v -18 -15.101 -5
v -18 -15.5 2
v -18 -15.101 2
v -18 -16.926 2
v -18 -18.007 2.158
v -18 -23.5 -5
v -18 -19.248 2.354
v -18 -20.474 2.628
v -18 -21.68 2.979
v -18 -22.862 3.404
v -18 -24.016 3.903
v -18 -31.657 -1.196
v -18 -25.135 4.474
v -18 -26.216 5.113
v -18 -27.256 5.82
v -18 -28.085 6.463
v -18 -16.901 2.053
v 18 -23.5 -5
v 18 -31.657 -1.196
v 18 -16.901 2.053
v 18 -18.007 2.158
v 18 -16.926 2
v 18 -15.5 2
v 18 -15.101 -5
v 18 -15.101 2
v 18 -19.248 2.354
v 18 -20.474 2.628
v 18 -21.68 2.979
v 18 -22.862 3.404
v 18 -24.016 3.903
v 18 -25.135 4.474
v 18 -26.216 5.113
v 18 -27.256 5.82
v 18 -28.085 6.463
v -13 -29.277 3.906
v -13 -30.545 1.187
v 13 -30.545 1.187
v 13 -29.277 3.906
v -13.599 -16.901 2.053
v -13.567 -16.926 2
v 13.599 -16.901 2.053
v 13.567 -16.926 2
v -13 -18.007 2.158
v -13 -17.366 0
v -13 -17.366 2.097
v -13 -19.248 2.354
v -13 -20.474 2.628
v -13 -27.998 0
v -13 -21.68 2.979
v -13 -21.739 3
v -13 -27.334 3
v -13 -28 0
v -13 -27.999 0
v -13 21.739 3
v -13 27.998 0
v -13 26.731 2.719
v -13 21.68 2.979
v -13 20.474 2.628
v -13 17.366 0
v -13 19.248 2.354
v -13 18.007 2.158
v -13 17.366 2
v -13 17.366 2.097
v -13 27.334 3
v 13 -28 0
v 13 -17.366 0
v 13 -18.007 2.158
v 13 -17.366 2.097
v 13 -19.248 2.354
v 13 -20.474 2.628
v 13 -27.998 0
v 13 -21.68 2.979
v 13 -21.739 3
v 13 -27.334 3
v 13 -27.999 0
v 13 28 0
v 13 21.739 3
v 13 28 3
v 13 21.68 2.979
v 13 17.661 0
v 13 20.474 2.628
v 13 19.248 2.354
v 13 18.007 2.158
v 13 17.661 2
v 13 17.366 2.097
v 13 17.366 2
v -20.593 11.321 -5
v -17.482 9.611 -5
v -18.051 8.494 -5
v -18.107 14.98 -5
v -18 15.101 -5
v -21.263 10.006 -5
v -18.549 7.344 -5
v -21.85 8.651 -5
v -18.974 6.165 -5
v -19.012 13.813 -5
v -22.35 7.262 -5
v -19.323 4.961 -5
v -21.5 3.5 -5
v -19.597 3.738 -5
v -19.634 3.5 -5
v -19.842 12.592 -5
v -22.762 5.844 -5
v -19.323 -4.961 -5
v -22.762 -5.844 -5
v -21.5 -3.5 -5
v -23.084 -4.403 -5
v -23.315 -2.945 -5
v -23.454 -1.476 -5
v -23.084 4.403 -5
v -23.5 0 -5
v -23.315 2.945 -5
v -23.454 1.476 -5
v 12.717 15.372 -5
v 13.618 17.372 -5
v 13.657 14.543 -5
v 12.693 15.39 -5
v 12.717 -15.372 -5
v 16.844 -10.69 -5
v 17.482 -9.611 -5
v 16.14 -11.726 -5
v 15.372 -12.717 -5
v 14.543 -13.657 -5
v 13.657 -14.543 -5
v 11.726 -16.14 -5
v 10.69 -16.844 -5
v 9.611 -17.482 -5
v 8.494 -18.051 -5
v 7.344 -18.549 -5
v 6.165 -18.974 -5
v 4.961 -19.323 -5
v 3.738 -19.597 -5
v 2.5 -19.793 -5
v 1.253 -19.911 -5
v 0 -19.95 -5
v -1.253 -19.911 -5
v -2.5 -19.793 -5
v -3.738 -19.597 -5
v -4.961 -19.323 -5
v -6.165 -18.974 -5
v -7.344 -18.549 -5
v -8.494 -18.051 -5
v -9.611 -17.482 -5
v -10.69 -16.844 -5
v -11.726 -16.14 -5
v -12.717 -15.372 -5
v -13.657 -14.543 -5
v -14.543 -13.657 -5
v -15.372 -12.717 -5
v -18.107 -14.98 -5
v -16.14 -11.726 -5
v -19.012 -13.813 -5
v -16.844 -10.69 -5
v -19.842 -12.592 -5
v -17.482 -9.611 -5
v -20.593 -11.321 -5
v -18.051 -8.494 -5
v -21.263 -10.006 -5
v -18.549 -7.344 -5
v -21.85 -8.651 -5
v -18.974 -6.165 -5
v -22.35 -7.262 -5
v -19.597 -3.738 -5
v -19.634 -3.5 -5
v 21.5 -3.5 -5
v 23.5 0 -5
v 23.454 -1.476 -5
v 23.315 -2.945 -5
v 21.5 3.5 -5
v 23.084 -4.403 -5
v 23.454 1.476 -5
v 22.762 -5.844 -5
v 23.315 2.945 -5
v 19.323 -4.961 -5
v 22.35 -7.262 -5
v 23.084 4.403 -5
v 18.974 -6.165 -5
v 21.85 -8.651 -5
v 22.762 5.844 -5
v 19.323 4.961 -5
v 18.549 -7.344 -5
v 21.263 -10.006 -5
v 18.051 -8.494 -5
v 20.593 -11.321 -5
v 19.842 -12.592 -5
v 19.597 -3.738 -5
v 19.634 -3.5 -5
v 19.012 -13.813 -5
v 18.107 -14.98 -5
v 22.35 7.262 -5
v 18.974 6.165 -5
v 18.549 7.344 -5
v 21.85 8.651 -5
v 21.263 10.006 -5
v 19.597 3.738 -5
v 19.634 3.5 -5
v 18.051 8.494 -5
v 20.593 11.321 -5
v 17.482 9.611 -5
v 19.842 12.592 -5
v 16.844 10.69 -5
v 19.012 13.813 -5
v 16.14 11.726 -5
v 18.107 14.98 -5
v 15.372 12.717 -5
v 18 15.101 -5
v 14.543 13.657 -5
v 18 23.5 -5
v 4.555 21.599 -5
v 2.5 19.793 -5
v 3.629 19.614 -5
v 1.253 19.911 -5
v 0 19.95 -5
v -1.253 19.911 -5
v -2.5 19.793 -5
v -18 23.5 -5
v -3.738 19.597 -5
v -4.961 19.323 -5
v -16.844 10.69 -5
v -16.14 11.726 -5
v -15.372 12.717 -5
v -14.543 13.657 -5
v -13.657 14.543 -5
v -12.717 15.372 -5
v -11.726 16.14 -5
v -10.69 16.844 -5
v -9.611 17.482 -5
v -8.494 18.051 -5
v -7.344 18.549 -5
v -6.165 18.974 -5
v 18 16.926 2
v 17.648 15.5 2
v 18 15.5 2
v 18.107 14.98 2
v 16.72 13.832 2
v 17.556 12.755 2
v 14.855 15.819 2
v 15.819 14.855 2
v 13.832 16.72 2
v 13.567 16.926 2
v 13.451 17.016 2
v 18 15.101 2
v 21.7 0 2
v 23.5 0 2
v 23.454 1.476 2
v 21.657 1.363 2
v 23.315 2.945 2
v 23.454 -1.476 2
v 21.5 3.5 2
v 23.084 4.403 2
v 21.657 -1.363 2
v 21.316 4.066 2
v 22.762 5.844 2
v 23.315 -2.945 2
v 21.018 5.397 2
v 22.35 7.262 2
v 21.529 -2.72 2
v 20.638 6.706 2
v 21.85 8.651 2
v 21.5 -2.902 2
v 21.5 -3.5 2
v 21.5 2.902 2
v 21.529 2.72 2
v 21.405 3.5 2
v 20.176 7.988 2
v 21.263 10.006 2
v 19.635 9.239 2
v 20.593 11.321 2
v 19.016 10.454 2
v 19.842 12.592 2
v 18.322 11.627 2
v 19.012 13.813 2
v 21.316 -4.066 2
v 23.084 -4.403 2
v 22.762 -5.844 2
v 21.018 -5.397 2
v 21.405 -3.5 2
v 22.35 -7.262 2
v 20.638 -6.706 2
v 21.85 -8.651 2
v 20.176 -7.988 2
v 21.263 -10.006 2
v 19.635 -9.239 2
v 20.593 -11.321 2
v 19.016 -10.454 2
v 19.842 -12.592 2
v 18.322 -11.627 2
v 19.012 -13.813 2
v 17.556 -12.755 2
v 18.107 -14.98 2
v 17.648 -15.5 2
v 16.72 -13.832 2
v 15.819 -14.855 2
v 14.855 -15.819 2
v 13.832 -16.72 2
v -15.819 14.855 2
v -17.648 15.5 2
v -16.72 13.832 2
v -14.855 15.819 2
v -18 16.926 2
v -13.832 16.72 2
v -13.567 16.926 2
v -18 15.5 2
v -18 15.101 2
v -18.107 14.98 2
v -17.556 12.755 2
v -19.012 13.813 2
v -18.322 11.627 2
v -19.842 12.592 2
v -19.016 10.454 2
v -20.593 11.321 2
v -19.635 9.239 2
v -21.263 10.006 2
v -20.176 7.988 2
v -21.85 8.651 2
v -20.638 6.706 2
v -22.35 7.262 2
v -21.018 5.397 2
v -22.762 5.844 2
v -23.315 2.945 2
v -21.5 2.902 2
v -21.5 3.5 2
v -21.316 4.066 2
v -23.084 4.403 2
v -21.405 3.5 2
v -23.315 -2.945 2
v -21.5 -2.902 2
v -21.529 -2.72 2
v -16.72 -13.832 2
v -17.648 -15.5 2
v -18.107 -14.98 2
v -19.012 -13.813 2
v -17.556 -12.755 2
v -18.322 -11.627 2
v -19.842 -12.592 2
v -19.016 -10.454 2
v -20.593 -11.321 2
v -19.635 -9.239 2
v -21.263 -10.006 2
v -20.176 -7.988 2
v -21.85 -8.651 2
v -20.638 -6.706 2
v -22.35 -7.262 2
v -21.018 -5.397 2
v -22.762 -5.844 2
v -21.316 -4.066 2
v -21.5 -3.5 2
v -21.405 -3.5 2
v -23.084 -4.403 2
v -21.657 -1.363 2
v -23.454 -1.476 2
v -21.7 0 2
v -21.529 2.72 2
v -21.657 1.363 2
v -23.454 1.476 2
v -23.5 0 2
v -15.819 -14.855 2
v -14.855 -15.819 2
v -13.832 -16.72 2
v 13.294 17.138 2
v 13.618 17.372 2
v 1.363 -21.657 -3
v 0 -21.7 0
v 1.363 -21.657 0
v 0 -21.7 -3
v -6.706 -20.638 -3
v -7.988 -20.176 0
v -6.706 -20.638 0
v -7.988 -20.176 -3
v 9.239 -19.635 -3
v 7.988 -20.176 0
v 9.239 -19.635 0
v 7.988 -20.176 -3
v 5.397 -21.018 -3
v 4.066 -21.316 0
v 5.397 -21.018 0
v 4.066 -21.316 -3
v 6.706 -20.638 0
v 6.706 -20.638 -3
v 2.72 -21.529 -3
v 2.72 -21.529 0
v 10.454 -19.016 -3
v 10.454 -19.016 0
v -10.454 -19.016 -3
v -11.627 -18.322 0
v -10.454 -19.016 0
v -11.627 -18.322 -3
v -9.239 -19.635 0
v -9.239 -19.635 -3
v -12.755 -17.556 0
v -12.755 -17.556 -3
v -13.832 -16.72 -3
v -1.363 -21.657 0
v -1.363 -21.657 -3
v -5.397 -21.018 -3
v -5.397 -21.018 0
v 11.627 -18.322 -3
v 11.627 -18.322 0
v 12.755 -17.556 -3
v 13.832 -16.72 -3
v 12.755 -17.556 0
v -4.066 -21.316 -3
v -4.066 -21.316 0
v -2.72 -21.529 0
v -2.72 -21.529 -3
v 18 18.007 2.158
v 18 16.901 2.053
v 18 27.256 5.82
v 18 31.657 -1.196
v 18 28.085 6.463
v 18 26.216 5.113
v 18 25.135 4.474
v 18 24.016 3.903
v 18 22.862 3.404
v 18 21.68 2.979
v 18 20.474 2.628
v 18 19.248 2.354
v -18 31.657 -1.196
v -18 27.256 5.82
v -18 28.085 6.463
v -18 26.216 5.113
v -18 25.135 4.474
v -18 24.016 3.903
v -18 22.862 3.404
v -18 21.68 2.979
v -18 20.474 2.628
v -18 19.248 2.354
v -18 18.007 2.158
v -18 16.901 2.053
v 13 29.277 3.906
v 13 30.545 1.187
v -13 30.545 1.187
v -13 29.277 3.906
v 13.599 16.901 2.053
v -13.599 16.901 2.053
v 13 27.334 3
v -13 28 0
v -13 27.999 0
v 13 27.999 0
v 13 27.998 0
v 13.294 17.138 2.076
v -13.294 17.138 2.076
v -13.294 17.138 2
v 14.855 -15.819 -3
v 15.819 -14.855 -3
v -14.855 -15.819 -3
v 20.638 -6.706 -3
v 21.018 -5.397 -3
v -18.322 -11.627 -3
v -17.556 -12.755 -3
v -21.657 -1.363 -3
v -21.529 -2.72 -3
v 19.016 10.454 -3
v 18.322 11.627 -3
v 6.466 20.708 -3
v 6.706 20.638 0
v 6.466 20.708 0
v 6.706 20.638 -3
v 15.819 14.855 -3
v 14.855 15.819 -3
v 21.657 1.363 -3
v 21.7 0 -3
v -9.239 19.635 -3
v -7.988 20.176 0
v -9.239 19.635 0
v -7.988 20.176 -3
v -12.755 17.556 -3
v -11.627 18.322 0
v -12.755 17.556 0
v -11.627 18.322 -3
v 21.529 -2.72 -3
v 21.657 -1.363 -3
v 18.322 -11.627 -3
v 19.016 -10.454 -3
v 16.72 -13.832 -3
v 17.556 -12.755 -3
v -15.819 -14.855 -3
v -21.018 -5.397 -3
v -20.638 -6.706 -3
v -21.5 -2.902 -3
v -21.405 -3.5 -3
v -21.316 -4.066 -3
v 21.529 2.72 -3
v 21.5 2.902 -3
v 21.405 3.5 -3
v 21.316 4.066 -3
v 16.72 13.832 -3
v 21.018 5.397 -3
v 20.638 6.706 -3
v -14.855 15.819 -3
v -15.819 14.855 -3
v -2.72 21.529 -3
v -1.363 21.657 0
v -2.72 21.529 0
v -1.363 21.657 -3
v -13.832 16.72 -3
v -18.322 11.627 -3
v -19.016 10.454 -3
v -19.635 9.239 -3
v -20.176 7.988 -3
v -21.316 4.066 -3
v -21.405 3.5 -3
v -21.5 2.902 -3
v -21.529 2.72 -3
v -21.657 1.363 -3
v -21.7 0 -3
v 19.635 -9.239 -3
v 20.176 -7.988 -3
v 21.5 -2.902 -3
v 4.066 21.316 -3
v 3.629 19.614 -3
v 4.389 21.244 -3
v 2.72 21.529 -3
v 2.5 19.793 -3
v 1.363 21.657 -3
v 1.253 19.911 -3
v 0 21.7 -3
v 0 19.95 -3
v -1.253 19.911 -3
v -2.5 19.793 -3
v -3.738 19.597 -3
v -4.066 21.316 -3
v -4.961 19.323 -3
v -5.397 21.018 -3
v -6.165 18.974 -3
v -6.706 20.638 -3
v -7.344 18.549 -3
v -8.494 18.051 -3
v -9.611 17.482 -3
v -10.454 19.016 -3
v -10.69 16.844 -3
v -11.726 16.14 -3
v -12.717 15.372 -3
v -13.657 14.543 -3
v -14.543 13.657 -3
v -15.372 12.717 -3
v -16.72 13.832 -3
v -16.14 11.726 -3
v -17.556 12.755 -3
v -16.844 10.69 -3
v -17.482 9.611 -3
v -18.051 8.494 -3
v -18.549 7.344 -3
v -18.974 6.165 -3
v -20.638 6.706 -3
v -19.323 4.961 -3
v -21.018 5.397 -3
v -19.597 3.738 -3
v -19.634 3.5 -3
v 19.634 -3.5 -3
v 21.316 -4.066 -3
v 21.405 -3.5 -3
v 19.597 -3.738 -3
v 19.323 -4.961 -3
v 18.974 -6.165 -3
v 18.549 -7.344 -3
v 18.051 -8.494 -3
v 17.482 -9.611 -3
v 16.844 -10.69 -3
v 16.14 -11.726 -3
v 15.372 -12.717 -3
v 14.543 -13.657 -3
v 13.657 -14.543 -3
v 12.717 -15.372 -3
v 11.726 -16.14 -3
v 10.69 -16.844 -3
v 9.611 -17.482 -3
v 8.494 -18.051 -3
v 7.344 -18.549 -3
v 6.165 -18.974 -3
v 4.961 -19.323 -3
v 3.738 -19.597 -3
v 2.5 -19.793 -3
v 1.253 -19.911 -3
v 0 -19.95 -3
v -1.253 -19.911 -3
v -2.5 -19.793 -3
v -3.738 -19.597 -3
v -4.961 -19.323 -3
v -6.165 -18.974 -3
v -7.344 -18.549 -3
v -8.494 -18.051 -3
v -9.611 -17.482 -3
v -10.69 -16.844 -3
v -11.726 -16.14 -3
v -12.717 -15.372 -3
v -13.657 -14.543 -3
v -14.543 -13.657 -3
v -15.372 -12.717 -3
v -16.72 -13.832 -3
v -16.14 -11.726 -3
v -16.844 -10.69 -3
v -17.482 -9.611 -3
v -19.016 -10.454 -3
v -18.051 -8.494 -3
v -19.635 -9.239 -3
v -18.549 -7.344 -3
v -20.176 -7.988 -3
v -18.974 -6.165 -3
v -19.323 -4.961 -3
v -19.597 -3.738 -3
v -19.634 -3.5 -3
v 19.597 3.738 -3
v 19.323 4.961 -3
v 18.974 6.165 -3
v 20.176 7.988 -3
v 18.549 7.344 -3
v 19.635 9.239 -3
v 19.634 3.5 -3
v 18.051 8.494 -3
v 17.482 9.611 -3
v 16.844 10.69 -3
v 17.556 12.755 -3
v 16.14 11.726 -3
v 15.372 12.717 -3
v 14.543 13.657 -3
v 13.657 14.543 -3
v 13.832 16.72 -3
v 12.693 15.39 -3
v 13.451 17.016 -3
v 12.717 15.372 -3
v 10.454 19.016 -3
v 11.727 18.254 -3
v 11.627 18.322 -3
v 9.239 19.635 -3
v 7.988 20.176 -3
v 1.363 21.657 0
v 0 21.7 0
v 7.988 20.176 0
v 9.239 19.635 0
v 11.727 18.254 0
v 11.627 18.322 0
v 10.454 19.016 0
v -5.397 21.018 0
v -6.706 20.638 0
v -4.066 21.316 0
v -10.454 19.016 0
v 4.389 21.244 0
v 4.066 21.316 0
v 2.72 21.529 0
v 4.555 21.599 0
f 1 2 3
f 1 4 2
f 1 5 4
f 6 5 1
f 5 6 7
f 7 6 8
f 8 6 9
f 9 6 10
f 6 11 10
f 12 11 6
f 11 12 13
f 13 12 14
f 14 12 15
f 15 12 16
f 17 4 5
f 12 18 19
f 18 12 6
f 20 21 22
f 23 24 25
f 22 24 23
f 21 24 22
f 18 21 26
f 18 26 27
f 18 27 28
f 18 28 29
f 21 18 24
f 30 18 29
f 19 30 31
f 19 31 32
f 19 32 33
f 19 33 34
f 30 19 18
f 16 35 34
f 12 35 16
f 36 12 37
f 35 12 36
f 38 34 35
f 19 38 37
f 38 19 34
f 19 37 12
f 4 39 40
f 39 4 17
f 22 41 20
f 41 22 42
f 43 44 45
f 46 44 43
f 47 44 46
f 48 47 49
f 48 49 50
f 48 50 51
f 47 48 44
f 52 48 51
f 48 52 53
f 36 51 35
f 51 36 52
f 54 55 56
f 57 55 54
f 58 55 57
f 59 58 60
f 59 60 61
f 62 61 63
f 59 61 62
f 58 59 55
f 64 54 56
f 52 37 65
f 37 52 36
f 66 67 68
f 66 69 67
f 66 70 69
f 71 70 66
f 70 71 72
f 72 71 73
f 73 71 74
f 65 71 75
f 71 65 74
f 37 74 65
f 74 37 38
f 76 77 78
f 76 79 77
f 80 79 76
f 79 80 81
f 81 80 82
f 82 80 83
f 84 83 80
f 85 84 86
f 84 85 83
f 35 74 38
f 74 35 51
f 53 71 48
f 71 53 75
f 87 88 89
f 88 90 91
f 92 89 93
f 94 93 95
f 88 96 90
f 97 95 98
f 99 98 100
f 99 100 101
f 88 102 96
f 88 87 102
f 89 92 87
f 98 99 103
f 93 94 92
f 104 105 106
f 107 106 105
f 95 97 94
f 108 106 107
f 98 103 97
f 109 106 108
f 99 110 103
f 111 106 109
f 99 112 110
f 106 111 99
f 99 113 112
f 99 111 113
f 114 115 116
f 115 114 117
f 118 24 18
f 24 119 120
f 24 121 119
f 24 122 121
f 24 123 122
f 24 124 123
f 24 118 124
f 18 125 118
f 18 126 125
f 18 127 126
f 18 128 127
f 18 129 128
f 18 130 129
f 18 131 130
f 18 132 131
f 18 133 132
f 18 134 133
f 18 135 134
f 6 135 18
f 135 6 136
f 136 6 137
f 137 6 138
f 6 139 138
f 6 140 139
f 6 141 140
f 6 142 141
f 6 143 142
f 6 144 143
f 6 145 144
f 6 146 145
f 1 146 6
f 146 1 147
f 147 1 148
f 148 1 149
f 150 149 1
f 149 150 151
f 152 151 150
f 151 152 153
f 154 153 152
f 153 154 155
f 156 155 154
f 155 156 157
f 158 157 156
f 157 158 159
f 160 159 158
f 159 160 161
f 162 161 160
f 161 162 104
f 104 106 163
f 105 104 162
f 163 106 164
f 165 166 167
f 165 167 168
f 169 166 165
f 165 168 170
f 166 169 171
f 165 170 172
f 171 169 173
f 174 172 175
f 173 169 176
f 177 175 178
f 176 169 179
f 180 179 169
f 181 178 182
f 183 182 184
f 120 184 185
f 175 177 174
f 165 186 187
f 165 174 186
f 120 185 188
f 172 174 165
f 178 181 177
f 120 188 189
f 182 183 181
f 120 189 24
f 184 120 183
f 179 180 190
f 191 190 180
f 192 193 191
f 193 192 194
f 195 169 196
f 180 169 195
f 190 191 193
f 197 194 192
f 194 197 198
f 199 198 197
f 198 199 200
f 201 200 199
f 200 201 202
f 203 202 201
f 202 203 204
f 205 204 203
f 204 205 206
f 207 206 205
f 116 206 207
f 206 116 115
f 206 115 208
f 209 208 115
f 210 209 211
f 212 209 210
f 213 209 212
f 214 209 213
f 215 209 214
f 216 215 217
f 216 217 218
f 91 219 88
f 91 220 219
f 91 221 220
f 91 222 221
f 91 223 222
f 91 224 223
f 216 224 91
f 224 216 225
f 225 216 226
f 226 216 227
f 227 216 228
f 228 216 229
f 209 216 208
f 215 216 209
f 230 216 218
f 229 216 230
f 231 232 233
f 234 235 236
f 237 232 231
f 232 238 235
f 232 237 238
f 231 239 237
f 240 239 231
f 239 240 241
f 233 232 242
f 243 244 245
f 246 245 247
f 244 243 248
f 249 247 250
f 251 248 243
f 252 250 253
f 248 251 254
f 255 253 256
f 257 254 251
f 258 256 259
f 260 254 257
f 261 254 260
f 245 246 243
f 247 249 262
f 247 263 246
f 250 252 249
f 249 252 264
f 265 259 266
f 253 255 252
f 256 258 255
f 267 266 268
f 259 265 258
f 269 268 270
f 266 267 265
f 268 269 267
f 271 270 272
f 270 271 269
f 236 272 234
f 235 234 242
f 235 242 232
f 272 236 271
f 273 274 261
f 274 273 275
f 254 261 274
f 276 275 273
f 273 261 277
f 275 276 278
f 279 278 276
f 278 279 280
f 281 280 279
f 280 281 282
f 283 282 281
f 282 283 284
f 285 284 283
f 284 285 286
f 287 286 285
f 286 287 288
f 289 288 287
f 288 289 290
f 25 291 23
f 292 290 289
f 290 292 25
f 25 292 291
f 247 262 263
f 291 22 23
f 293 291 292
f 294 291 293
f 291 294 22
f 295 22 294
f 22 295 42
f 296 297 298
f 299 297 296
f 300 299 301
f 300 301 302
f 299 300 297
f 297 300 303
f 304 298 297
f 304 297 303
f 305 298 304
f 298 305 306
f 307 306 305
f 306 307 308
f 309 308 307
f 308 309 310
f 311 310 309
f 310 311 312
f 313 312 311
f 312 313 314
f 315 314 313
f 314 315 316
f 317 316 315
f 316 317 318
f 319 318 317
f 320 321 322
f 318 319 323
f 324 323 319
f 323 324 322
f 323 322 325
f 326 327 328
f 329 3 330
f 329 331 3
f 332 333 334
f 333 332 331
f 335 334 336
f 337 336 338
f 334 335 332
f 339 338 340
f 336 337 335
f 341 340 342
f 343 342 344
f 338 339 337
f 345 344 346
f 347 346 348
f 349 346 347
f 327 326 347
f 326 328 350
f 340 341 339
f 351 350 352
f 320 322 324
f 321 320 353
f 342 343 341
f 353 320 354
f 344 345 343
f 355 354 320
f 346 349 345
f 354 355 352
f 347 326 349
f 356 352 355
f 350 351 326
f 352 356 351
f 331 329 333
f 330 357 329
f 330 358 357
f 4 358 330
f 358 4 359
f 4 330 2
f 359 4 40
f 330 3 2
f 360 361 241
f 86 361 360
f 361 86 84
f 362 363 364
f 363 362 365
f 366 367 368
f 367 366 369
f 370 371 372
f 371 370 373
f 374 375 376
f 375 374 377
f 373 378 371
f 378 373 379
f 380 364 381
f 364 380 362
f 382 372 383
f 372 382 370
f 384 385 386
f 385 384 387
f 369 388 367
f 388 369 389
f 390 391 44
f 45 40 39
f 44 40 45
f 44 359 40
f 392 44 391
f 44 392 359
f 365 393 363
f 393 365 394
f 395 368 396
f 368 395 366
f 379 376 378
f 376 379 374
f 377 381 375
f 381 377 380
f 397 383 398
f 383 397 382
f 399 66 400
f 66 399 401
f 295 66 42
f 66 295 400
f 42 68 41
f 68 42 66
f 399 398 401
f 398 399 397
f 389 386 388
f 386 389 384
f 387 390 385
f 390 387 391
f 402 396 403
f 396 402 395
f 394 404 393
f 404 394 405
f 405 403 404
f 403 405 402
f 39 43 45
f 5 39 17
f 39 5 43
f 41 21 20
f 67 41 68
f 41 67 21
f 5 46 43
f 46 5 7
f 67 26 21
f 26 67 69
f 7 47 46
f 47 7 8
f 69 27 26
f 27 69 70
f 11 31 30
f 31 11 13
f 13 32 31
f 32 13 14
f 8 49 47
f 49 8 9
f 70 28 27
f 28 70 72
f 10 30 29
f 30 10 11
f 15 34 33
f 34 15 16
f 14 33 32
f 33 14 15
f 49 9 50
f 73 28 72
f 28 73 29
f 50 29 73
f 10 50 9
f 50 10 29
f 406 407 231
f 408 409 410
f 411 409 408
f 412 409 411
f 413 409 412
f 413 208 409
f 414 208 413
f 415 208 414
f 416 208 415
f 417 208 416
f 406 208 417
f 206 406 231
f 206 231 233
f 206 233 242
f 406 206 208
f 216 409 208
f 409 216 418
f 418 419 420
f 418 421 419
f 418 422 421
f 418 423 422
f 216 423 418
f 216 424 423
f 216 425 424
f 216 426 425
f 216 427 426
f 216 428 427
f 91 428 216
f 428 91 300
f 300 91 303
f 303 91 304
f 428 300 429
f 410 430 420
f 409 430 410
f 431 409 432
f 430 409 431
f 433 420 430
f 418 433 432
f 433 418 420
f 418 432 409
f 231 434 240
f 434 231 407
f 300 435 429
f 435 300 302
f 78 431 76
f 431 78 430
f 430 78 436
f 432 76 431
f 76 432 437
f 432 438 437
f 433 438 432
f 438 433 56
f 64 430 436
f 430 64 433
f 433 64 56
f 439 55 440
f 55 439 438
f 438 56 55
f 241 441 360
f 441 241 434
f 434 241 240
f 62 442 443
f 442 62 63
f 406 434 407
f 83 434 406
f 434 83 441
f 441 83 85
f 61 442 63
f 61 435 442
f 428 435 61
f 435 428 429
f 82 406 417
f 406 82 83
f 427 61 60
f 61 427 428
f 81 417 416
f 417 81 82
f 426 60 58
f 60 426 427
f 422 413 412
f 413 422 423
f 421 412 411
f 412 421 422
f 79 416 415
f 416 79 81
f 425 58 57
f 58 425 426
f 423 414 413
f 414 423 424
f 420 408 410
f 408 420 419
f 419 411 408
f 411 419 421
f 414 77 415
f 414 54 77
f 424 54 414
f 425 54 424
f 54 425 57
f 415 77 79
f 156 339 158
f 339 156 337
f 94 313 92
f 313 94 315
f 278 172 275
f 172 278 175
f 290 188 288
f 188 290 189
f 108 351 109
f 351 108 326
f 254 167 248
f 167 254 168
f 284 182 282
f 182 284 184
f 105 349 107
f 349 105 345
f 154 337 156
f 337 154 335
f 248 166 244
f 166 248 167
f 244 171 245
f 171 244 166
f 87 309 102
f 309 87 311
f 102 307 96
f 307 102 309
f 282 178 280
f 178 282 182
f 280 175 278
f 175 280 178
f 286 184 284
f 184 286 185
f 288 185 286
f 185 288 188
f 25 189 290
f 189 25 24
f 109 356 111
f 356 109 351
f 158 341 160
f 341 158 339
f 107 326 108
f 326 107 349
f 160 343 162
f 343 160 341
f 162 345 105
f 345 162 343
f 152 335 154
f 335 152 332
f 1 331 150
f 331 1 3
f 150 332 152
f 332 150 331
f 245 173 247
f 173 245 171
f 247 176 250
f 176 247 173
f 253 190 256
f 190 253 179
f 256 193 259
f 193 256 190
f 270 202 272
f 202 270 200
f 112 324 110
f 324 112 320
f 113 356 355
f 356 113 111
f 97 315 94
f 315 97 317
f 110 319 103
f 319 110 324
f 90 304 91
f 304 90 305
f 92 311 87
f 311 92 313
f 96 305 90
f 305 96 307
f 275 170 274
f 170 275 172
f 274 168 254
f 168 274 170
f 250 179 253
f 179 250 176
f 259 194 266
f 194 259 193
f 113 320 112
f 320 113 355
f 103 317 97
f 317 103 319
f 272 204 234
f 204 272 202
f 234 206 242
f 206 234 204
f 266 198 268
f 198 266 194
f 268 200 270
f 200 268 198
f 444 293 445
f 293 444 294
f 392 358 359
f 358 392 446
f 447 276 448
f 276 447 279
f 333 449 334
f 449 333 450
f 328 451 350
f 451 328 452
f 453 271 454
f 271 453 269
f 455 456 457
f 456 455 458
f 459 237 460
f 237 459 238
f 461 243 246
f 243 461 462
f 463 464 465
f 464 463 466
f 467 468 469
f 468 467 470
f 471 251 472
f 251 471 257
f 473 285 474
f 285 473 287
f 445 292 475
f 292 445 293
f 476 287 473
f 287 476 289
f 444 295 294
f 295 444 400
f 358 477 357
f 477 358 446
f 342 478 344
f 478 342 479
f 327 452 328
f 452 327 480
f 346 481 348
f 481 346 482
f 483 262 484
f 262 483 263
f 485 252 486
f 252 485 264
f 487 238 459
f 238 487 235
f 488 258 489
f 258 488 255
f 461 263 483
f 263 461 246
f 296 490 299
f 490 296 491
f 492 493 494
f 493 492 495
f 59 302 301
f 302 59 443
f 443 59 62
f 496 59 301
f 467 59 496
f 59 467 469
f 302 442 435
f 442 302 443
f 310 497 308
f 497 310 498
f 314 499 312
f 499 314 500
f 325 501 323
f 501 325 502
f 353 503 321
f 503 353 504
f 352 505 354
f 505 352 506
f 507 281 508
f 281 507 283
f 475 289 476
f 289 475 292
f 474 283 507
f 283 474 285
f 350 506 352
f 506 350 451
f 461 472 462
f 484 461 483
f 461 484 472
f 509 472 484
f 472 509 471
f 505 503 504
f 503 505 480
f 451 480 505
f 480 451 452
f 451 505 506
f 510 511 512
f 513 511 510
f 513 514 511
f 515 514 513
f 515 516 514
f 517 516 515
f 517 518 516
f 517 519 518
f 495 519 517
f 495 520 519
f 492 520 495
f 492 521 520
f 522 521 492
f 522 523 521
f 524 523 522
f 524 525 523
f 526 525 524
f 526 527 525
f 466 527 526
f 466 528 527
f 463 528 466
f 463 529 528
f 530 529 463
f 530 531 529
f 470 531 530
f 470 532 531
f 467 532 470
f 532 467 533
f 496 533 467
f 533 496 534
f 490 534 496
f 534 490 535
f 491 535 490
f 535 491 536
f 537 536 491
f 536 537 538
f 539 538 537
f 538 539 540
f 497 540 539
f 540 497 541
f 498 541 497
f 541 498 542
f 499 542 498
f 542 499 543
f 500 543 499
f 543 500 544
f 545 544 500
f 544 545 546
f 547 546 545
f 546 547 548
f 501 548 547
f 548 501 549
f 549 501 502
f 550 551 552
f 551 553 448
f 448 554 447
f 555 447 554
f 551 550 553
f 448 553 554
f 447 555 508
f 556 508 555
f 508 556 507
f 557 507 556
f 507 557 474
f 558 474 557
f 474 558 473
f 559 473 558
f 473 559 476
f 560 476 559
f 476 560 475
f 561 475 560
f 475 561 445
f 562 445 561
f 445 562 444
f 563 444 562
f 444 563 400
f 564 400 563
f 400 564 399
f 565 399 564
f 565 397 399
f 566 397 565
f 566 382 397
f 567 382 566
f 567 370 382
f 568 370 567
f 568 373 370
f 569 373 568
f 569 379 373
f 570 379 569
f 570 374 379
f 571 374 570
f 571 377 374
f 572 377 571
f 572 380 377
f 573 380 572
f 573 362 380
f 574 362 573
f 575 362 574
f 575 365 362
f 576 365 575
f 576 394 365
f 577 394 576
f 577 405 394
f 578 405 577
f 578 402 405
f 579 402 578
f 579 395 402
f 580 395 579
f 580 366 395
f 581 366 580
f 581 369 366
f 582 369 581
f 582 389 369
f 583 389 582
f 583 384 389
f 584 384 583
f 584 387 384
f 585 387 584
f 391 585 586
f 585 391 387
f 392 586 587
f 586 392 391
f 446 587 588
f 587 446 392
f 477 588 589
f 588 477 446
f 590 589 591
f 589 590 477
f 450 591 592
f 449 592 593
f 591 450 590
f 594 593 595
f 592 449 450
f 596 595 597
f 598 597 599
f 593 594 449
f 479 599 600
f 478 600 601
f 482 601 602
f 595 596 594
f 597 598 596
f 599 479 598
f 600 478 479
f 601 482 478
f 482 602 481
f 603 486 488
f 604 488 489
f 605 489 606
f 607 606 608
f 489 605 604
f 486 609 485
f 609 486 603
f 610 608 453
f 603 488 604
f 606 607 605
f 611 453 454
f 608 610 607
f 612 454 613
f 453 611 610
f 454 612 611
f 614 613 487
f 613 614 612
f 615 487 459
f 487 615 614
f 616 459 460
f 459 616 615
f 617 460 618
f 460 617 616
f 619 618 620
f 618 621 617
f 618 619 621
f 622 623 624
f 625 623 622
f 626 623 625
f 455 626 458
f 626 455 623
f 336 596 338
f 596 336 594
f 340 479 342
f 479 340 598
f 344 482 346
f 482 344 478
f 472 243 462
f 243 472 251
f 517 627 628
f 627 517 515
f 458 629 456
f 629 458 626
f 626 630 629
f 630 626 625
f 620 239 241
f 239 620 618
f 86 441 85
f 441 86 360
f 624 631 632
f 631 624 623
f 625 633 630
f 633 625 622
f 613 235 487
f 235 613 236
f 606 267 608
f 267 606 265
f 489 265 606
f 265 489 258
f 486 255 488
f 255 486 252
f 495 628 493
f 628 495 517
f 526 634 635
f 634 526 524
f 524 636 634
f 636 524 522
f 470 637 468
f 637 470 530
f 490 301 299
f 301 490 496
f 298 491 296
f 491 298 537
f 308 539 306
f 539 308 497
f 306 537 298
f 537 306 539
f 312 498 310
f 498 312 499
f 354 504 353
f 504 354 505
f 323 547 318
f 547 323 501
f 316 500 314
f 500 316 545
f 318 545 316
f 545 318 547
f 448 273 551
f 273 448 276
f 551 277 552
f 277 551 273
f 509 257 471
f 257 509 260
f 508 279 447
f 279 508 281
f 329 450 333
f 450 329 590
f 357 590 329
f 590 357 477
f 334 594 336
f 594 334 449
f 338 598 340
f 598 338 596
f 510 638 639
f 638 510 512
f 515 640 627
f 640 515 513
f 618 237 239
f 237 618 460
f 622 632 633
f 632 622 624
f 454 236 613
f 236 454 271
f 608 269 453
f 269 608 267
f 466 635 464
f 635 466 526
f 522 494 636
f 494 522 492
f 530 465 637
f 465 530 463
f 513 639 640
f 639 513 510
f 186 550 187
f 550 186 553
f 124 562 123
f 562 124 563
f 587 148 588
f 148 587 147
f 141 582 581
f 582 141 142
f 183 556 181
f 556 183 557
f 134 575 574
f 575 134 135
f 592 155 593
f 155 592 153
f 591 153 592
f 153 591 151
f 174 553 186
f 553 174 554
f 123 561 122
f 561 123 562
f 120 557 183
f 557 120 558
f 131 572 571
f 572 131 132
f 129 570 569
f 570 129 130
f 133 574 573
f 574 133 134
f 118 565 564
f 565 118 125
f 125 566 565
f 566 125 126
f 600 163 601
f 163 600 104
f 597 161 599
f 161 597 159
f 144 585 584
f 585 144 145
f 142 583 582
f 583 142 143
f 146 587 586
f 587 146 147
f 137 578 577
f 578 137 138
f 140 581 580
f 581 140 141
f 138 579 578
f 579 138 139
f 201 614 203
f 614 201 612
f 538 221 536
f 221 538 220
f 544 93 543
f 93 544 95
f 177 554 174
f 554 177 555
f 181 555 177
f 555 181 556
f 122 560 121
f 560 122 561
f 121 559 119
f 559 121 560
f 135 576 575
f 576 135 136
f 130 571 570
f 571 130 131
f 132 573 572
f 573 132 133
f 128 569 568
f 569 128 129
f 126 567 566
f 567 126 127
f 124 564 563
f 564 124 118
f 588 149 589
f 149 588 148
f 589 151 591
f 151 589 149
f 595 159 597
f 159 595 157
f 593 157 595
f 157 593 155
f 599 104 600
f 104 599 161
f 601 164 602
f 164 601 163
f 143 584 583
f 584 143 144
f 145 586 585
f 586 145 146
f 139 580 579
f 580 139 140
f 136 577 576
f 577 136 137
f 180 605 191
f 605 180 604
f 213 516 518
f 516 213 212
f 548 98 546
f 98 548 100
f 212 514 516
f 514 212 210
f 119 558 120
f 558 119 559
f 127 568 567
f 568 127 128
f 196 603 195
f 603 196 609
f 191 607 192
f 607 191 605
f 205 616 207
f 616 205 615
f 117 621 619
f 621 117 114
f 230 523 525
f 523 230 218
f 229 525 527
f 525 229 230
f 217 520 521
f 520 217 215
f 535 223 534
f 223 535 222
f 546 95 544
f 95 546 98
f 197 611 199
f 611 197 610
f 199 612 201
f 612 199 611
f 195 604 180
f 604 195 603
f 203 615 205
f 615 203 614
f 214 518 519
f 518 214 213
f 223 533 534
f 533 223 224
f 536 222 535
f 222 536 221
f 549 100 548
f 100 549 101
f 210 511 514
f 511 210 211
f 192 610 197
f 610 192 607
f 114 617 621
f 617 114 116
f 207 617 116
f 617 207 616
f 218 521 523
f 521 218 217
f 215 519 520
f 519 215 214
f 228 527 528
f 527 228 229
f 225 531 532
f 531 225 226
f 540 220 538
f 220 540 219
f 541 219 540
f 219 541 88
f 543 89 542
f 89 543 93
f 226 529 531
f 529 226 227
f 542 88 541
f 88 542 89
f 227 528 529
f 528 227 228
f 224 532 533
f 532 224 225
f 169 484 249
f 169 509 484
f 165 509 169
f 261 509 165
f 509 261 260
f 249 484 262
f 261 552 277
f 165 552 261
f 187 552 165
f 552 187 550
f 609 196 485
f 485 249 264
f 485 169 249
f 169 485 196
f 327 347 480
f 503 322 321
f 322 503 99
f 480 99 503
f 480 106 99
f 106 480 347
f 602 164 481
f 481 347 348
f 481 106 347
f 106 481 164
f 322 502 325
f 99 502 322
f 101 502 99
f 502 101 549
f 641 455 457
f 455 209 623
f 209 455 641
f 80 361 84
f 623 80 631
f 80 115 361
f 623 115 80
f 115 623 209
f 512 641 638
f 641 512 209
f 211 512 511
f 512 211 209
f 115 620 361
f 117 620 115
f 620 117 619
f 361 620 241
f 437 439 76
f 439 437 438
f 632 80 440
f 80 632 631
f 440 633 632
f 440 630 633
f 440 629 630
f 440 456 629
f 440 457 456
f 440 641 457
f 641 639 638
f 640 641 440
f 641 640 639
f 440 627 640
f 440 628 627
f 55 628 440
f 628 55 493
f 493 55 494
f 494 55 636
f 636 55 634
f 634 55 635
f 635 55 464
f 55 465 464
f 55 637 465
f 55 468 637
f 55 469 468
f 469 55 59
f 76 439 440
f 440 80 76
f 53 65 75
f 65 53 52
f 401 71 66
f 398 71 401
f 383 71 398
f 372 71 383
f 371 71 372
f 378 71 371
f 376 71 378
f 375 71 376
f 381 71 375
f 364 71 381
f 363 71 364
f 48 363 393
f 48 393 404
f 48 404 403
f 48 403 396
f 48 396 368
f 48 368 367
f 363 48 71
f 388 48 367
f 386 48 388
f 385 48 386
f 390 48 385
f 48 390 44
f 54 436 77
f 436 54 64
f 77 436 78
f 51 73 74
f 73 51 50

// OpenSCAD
$fn=100;

// Breite der Schlaufe
breite= 36;
    

module retroUhr()
{
  color("LightCoral") cylinder(d=42.8, h= 1.5);
  
  color("darkred") translate([-15.37/2, 8, 1.5]) 
  {
    cube([15.37, 6.35, 3]);
    
    translate([0.5*3.84, 6.35/2, 3]) resize([3.84,6.35,2.54]) sphere(2.54);
    translate([1.5*3.84, 6.35/2, 3]) resize([3.84,6.35,2.54]) sphere(2.54);
    translate([2.5*3.84, 6.35/2, 3]) resize([3.84,6.35,2.54]) sphere(2.54);
    translate([3.5*3.84, 6.35/2, 3]) resize([3.84,6.35,2.54]) sphere(2.54);
  }
  
  color("silver") translate([0,-4,4.5]) cylinder(d=20,h=2);
  
  color("darkgrey")
  {
    translate([ 41.7/2-3.5, -3, 1.5]) cube([3.5, 6, 3.5]);
    translate([-41.7/2    , -3, 1.5]) cube([3.5, 6, 3.5]);
  }
}

module armband()
{
  laenge= 56;
  color("DarkSlateBlue")
    translate([-26/2,-laenge/2, -3])
      cube([26, laenge, 3]);
      
  *color("darkgrey")
    translate([-30.5/2, -laenge/2, -6])
      cube([30.5, laenge, 3]);
  
}

module schlaufe()
{
  difference()
  {
    union()
    {
      translate([-breite/2, 47/2-12, -2]) cube([breite, 12, 7]);
      translate([-breite/2, 47/2, 7-2]) rotate([-25,0,0]) difference()
      {
        union()
        {
          translate([0,0,-10]) cube([breite, 9, 10]);
          translate([0,-3,-12]) cube([breite, 9, 10]);
        }
        translate([(breite-26)/2, 6.19, -5.63])cube([26,20,3]);
      }
    } 
    translate([0,0,0]) cylinder(d= 46, h=15);
    
    translate([0,0,-5]) cylinder(d= 43.4, h=15);
  
  translate([-25, 47/2-8, -22]) rotate([0,90,0]) cylinder(d=40,h=50);  
    *translate([-26/2,47/2-4,-6]) rotate([30,0,0]) cube([26, 15,3]);
  }
  
  
  *translate([-breite/2, 47/2-4, 7-2]) rotate([-25,0,0]) translate([0,0,-7])cube([breite, 12, 7]);
}
module gehauese()
{
  difference()
  {
    union()
    {
      translate([0,0,-2]) cylinder(d= 47, h=7);
      schlaufe();
      rotate([0,0,180]) schlaufe();
    }
    
    translate([0,0,-2.5]) cylinder(d=43.4, h=5.5);
    translate([0,0,2]) cylinder(d=43.4-3.5, h=15);
     
    rotate([0,0,0]) translate([17.5,-3.5,-2]) cube([4,7,10]);
    rotate([0,0,180]) translate([17.5,-3.5,-2]) cube([4,7,10]);
    rotate([0,0,-65]) translate([17.5,-5,-2]) cube([4,10,10]);
    
    translate([-26/2,-28,-3.])cube([26, 2*28, 3]);
    
    *translate([0,0,-10]) cube([50,50,50]);
  }

  *difference()
  {
    union()
    {
      schlaufe();
      rotate([0,0,180]) schlaufe();
    }
    
    translate([-26/2,-47/2-1,-3.])cube([26, 49, 3]);
  }
}

module scheibe()
{
  %translate([0,0,9]) cylinder(d=47, h=3);
}

*#import("RetroUhr.bak.stl");


*schlaufe();
*gehauese();
*scheibe();
*armband();

*translate([0,0,.75]) retroUhr();

rotate([180,0,0])gehauese();
